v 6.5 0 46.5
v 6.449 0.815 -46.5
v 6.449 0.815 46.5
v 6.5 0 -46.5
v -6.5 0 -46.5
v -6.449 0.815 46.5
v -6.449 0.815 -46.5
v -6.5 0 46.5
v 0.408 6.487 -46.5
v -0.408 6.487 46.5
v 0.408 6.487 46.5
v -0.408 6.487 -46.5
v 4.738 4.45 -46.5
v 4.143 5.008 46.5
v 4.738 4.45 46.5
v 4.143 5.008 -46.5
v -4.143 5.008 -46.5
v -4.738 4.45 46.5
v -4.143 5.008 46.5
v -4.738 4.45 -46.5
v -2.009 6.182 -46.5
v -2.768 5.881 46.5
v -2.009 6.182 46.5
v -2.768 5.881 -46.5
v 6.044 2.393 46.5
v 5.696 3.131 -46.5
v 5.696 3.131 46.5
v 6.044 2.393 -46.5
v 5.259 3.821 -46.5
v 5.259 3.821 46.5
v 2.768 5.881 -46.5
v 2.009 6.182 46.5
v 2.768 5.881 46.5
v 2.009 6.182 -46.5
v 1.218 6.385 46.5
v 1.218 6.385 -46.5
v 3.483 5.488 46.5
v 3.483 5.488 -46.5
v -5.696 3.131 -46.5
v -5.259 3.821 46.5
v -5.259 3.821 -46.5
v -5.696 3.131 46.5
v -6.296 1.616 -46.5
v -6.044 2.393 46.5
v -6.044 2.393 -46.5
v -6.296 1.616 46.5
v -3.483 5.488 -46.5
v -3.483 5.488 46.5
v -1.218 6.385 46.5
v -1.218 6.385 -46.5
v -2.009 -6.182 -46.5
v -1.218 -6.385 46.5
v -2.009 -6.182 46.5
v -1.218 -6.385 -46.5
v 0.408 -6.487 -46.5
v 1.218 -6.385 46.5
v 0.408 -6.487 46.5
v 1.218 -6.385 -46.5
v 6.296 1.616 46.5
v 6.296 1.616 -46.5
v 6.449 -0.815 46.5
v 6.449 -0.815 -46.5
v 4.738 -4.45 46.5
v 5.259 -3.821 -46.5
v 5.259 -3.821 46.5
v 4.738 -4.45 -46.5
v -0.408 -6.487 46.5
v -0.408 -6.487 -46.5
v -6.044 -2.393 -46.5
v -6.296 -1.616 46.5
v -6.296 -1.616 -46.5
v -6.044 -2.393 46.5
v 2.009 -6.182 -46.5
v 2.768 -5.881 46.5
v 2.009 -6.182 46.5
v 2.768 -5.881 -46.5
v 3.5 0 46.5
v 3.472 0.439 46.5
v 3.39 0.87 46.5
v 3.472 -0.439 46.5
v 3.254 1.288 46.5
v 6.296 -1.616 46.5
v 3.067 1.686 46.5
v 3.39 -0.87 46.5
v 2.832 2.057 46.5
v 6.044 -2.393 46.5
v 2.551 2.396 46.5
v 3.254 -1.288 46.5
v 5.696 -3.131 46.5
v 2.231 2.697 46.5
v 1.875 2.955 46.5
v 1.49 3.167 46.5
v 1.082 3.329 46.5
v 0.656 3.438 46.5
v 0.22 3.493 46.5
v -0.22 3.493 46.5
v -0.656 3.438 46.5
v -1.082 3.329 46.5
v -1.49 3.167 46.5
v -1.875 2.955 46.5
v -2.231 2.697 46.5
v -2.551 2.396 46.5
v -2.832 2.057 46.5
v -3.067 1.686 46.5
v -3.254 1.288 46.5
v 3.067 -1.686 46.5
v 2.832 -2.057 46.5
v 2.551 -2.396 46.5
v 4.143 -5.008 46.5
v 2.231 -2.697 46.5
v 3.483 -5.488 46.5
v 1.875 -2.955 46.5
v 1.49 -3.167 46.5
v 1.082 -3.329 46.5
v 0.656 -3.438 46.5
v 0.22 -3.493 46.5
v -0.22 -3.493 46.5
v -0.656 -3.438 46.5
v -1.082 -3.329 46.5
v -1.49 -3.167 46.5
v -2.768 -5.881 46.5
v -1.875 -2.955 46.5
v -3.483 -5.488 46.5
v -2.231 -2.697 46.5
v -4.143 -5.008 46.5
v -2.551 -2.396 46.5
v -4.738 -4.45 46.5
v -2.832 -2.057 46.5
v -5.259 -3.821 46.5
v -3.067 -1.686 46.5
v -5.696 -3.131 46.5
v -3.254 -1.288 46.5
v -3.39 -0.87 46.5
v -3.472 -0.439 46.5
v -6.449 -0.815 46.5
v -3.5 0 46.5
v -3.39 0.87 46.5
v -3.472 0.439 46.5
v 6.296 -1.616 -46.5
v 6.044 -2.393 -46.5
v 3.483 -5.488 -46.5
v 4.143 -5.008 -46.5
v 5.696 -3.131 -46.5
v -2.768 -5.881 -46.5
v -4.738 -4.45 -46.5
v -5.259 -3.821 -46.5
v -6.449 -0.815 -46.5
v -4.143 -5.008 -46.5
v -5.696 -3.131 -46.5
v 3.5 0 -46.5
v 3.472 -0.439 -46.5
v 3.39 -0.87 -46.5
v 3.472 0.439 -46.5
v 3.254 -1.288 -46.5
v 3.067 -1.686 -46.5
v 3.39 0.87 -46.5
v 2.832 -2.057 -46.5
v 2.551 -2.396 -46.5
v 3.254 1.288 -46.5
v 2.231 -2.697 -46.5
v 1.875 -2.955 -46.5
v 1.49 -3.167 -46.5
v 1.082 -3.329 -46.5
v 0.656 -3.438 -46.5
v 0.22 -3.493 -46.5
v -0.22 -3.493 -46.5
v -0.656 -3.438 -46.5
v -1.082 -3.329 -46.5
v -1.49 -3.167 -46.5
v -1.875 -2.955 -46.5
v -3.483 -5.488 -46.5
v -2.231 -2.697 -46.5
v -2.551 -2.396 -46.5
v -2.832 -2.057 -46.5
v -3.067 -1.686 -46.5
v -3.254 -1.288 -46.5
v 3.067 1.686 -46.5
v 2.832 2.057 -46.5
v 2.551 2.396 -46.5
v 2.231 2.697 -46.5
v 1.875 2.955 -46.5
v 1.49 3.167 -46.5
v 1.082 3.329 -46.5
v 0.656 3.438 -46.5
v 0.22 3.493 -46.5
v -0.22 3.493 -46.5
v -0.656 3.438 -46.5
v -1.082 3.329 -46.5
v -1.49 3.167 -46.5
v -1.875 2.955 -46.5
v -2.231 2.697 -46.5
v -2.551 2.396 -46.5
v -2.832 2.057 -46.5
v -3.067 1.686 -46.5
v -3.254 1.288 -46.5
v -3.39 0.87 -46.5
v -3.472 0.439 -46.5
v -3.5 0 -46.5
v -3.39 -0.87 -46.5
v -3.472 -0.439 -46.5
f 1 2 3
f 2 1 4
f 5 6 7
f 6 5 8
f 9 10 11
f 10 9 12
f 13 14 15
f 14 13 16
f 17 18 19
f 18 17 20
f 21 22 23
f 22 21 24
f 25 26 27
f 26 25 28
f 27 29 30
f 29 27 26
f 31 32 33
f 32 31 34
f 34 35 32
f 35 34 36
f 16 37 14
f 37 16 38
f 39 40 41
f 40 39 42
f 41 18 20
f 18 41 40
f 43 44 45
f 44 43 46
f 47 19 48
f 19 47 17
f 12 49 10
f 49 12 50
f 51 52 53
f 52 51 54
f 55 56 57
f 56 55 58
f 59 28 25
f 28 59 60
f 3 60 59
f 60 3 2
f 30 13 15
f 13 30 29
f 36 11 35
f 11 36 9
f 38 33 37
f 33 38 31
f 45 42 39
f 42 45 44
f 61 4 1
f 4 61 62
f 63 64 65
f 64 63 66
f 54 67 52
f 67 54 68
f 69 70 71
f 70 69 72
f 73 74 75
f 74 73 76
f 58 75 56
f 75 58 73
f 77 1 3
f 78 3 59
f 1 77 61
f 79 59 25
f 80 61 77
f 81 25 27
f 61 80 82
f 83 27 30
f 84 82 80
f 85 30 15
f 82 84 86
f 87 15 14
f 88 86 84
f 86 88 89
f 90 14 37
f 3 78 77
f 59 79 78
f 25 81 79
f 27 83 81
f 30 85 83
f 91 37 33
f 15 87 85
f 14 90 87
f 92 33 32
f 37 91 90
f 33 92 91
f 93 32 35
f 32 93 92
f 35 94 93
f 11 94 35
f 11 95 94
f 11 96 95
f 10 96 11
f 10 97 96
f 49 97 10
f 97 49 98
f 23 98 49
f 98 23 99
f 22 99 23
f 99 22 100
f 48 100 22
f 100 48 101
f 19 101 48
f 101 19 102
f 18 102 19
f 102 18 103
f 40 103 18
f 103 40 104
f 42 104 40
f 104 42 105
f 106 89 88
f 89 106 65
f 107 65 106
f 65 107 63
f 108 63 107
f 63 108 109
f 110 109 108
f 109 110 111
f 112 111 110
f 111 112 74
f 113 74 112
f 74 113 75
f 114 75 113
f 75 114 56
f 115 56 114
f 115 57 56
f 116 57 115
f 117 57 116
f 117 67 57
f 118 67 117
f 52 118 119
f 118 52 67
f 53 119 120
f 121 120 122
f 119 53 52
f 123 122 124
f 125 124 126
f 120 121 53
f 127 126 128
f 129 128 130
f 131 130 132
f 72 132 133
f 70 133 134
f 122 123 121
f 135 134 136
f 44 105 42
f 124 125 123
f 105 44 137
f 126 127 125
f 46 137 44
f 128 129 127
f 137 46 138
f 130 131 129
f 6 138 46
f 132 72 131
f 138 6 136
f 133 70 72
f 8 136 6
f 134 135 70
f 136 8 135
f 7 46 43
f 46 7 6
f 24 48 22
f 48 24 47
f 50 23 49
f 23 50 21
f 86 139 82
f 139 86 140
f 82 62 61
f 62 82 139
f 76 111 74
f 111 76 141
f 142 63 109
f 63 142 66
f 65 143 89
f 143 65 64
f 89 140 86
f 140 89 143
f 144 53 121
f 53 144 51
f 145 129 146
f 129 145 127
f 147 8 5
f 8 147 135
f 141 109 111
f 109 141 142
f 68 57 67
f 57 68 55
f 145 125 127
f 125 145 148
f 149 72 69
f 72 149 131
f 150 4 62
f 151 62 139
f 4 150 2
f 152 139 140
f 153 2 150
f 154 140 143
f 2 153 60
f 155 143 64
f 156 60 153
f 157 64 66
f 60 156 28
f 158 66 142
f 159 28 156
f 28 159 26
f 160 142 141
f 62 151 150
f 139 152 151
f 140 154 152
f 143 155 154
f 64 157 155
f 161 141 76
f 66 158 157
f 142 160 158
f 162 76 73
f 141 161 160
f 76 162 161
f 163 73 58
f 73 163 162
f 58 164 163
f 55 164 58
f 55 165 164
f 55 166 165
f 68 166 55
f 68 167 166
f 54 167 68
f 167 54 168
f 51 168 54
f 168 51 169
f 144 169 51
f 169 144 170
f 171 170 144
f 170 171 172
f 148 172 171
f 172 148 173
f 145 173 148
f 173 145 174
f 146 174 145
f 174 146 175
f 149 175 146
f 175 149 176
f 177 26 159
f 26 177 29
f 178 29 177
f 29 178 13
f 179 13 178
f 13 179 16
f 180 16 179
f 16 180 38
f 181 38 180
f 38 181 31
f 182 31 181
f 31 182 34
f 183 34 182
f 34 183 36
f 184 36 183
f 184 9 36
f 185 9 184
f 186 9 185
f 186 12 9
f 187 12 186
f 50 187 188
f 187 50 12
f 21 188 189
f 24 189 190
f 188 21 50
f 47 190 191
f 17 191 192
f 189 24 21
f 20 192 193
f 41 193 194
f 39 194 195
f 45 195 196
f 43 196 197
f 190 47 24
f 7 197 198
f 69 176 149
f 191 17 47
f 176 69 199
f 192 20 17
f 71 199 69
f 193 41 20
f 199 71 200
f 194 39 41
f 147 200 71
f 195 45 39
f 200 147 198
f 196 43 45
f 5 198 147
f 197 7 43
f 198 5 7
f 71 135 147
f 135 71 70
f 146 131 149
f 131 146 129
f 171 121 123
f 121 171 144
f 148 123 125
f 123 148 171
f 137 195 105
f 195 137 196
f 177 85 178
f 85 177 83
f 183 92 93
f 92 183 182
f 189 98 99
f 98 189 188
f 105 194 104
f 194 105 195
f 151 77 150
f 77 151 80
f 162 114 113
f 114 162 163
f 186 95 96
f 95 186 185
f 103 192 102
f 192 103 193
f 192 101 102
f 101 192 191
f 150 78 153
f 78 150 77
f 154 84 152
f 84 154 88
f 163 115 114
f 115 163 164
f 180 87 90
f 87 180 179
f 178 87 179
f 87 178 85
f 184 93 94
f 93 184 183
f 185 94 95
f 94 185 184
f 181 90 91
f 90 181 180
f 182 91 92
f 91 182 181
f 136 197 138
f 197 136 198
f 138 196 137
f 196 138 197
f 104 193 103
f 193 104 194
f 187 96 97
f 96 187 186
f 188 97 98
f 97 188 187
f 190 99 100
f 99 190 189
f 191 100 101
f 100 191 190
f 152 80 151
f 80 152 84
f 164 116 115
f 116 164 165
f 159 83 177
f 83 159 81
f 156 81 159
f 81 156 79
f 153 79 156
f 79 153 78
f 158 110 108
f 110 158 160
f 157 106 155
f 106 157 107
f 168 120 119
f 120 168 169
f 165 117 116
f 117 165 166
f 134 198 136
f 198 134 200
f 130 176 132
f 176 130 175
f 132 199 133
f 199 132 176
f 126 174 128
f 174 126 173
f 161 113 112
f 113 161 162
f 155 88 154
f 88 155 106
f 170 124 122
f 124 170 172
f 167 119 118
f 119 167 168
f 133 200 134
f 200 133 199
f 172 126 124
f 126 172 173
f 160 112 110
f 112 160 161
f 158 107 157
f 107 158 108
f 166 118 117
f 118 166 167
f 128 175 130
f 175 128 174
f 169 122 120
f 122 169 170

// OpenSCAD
$fn = 50;


difference() {
	union() {
		translate(v = [0, 0, -46.5000000000]) {
			cylinder(h = 93, r = 6.5000000000);
		}
	}
	union() {
		translate(v = [0, 0, -100.0000000000]) {
			cylinder(h = 200, r = 3.5000000000);
		}
	}
}
